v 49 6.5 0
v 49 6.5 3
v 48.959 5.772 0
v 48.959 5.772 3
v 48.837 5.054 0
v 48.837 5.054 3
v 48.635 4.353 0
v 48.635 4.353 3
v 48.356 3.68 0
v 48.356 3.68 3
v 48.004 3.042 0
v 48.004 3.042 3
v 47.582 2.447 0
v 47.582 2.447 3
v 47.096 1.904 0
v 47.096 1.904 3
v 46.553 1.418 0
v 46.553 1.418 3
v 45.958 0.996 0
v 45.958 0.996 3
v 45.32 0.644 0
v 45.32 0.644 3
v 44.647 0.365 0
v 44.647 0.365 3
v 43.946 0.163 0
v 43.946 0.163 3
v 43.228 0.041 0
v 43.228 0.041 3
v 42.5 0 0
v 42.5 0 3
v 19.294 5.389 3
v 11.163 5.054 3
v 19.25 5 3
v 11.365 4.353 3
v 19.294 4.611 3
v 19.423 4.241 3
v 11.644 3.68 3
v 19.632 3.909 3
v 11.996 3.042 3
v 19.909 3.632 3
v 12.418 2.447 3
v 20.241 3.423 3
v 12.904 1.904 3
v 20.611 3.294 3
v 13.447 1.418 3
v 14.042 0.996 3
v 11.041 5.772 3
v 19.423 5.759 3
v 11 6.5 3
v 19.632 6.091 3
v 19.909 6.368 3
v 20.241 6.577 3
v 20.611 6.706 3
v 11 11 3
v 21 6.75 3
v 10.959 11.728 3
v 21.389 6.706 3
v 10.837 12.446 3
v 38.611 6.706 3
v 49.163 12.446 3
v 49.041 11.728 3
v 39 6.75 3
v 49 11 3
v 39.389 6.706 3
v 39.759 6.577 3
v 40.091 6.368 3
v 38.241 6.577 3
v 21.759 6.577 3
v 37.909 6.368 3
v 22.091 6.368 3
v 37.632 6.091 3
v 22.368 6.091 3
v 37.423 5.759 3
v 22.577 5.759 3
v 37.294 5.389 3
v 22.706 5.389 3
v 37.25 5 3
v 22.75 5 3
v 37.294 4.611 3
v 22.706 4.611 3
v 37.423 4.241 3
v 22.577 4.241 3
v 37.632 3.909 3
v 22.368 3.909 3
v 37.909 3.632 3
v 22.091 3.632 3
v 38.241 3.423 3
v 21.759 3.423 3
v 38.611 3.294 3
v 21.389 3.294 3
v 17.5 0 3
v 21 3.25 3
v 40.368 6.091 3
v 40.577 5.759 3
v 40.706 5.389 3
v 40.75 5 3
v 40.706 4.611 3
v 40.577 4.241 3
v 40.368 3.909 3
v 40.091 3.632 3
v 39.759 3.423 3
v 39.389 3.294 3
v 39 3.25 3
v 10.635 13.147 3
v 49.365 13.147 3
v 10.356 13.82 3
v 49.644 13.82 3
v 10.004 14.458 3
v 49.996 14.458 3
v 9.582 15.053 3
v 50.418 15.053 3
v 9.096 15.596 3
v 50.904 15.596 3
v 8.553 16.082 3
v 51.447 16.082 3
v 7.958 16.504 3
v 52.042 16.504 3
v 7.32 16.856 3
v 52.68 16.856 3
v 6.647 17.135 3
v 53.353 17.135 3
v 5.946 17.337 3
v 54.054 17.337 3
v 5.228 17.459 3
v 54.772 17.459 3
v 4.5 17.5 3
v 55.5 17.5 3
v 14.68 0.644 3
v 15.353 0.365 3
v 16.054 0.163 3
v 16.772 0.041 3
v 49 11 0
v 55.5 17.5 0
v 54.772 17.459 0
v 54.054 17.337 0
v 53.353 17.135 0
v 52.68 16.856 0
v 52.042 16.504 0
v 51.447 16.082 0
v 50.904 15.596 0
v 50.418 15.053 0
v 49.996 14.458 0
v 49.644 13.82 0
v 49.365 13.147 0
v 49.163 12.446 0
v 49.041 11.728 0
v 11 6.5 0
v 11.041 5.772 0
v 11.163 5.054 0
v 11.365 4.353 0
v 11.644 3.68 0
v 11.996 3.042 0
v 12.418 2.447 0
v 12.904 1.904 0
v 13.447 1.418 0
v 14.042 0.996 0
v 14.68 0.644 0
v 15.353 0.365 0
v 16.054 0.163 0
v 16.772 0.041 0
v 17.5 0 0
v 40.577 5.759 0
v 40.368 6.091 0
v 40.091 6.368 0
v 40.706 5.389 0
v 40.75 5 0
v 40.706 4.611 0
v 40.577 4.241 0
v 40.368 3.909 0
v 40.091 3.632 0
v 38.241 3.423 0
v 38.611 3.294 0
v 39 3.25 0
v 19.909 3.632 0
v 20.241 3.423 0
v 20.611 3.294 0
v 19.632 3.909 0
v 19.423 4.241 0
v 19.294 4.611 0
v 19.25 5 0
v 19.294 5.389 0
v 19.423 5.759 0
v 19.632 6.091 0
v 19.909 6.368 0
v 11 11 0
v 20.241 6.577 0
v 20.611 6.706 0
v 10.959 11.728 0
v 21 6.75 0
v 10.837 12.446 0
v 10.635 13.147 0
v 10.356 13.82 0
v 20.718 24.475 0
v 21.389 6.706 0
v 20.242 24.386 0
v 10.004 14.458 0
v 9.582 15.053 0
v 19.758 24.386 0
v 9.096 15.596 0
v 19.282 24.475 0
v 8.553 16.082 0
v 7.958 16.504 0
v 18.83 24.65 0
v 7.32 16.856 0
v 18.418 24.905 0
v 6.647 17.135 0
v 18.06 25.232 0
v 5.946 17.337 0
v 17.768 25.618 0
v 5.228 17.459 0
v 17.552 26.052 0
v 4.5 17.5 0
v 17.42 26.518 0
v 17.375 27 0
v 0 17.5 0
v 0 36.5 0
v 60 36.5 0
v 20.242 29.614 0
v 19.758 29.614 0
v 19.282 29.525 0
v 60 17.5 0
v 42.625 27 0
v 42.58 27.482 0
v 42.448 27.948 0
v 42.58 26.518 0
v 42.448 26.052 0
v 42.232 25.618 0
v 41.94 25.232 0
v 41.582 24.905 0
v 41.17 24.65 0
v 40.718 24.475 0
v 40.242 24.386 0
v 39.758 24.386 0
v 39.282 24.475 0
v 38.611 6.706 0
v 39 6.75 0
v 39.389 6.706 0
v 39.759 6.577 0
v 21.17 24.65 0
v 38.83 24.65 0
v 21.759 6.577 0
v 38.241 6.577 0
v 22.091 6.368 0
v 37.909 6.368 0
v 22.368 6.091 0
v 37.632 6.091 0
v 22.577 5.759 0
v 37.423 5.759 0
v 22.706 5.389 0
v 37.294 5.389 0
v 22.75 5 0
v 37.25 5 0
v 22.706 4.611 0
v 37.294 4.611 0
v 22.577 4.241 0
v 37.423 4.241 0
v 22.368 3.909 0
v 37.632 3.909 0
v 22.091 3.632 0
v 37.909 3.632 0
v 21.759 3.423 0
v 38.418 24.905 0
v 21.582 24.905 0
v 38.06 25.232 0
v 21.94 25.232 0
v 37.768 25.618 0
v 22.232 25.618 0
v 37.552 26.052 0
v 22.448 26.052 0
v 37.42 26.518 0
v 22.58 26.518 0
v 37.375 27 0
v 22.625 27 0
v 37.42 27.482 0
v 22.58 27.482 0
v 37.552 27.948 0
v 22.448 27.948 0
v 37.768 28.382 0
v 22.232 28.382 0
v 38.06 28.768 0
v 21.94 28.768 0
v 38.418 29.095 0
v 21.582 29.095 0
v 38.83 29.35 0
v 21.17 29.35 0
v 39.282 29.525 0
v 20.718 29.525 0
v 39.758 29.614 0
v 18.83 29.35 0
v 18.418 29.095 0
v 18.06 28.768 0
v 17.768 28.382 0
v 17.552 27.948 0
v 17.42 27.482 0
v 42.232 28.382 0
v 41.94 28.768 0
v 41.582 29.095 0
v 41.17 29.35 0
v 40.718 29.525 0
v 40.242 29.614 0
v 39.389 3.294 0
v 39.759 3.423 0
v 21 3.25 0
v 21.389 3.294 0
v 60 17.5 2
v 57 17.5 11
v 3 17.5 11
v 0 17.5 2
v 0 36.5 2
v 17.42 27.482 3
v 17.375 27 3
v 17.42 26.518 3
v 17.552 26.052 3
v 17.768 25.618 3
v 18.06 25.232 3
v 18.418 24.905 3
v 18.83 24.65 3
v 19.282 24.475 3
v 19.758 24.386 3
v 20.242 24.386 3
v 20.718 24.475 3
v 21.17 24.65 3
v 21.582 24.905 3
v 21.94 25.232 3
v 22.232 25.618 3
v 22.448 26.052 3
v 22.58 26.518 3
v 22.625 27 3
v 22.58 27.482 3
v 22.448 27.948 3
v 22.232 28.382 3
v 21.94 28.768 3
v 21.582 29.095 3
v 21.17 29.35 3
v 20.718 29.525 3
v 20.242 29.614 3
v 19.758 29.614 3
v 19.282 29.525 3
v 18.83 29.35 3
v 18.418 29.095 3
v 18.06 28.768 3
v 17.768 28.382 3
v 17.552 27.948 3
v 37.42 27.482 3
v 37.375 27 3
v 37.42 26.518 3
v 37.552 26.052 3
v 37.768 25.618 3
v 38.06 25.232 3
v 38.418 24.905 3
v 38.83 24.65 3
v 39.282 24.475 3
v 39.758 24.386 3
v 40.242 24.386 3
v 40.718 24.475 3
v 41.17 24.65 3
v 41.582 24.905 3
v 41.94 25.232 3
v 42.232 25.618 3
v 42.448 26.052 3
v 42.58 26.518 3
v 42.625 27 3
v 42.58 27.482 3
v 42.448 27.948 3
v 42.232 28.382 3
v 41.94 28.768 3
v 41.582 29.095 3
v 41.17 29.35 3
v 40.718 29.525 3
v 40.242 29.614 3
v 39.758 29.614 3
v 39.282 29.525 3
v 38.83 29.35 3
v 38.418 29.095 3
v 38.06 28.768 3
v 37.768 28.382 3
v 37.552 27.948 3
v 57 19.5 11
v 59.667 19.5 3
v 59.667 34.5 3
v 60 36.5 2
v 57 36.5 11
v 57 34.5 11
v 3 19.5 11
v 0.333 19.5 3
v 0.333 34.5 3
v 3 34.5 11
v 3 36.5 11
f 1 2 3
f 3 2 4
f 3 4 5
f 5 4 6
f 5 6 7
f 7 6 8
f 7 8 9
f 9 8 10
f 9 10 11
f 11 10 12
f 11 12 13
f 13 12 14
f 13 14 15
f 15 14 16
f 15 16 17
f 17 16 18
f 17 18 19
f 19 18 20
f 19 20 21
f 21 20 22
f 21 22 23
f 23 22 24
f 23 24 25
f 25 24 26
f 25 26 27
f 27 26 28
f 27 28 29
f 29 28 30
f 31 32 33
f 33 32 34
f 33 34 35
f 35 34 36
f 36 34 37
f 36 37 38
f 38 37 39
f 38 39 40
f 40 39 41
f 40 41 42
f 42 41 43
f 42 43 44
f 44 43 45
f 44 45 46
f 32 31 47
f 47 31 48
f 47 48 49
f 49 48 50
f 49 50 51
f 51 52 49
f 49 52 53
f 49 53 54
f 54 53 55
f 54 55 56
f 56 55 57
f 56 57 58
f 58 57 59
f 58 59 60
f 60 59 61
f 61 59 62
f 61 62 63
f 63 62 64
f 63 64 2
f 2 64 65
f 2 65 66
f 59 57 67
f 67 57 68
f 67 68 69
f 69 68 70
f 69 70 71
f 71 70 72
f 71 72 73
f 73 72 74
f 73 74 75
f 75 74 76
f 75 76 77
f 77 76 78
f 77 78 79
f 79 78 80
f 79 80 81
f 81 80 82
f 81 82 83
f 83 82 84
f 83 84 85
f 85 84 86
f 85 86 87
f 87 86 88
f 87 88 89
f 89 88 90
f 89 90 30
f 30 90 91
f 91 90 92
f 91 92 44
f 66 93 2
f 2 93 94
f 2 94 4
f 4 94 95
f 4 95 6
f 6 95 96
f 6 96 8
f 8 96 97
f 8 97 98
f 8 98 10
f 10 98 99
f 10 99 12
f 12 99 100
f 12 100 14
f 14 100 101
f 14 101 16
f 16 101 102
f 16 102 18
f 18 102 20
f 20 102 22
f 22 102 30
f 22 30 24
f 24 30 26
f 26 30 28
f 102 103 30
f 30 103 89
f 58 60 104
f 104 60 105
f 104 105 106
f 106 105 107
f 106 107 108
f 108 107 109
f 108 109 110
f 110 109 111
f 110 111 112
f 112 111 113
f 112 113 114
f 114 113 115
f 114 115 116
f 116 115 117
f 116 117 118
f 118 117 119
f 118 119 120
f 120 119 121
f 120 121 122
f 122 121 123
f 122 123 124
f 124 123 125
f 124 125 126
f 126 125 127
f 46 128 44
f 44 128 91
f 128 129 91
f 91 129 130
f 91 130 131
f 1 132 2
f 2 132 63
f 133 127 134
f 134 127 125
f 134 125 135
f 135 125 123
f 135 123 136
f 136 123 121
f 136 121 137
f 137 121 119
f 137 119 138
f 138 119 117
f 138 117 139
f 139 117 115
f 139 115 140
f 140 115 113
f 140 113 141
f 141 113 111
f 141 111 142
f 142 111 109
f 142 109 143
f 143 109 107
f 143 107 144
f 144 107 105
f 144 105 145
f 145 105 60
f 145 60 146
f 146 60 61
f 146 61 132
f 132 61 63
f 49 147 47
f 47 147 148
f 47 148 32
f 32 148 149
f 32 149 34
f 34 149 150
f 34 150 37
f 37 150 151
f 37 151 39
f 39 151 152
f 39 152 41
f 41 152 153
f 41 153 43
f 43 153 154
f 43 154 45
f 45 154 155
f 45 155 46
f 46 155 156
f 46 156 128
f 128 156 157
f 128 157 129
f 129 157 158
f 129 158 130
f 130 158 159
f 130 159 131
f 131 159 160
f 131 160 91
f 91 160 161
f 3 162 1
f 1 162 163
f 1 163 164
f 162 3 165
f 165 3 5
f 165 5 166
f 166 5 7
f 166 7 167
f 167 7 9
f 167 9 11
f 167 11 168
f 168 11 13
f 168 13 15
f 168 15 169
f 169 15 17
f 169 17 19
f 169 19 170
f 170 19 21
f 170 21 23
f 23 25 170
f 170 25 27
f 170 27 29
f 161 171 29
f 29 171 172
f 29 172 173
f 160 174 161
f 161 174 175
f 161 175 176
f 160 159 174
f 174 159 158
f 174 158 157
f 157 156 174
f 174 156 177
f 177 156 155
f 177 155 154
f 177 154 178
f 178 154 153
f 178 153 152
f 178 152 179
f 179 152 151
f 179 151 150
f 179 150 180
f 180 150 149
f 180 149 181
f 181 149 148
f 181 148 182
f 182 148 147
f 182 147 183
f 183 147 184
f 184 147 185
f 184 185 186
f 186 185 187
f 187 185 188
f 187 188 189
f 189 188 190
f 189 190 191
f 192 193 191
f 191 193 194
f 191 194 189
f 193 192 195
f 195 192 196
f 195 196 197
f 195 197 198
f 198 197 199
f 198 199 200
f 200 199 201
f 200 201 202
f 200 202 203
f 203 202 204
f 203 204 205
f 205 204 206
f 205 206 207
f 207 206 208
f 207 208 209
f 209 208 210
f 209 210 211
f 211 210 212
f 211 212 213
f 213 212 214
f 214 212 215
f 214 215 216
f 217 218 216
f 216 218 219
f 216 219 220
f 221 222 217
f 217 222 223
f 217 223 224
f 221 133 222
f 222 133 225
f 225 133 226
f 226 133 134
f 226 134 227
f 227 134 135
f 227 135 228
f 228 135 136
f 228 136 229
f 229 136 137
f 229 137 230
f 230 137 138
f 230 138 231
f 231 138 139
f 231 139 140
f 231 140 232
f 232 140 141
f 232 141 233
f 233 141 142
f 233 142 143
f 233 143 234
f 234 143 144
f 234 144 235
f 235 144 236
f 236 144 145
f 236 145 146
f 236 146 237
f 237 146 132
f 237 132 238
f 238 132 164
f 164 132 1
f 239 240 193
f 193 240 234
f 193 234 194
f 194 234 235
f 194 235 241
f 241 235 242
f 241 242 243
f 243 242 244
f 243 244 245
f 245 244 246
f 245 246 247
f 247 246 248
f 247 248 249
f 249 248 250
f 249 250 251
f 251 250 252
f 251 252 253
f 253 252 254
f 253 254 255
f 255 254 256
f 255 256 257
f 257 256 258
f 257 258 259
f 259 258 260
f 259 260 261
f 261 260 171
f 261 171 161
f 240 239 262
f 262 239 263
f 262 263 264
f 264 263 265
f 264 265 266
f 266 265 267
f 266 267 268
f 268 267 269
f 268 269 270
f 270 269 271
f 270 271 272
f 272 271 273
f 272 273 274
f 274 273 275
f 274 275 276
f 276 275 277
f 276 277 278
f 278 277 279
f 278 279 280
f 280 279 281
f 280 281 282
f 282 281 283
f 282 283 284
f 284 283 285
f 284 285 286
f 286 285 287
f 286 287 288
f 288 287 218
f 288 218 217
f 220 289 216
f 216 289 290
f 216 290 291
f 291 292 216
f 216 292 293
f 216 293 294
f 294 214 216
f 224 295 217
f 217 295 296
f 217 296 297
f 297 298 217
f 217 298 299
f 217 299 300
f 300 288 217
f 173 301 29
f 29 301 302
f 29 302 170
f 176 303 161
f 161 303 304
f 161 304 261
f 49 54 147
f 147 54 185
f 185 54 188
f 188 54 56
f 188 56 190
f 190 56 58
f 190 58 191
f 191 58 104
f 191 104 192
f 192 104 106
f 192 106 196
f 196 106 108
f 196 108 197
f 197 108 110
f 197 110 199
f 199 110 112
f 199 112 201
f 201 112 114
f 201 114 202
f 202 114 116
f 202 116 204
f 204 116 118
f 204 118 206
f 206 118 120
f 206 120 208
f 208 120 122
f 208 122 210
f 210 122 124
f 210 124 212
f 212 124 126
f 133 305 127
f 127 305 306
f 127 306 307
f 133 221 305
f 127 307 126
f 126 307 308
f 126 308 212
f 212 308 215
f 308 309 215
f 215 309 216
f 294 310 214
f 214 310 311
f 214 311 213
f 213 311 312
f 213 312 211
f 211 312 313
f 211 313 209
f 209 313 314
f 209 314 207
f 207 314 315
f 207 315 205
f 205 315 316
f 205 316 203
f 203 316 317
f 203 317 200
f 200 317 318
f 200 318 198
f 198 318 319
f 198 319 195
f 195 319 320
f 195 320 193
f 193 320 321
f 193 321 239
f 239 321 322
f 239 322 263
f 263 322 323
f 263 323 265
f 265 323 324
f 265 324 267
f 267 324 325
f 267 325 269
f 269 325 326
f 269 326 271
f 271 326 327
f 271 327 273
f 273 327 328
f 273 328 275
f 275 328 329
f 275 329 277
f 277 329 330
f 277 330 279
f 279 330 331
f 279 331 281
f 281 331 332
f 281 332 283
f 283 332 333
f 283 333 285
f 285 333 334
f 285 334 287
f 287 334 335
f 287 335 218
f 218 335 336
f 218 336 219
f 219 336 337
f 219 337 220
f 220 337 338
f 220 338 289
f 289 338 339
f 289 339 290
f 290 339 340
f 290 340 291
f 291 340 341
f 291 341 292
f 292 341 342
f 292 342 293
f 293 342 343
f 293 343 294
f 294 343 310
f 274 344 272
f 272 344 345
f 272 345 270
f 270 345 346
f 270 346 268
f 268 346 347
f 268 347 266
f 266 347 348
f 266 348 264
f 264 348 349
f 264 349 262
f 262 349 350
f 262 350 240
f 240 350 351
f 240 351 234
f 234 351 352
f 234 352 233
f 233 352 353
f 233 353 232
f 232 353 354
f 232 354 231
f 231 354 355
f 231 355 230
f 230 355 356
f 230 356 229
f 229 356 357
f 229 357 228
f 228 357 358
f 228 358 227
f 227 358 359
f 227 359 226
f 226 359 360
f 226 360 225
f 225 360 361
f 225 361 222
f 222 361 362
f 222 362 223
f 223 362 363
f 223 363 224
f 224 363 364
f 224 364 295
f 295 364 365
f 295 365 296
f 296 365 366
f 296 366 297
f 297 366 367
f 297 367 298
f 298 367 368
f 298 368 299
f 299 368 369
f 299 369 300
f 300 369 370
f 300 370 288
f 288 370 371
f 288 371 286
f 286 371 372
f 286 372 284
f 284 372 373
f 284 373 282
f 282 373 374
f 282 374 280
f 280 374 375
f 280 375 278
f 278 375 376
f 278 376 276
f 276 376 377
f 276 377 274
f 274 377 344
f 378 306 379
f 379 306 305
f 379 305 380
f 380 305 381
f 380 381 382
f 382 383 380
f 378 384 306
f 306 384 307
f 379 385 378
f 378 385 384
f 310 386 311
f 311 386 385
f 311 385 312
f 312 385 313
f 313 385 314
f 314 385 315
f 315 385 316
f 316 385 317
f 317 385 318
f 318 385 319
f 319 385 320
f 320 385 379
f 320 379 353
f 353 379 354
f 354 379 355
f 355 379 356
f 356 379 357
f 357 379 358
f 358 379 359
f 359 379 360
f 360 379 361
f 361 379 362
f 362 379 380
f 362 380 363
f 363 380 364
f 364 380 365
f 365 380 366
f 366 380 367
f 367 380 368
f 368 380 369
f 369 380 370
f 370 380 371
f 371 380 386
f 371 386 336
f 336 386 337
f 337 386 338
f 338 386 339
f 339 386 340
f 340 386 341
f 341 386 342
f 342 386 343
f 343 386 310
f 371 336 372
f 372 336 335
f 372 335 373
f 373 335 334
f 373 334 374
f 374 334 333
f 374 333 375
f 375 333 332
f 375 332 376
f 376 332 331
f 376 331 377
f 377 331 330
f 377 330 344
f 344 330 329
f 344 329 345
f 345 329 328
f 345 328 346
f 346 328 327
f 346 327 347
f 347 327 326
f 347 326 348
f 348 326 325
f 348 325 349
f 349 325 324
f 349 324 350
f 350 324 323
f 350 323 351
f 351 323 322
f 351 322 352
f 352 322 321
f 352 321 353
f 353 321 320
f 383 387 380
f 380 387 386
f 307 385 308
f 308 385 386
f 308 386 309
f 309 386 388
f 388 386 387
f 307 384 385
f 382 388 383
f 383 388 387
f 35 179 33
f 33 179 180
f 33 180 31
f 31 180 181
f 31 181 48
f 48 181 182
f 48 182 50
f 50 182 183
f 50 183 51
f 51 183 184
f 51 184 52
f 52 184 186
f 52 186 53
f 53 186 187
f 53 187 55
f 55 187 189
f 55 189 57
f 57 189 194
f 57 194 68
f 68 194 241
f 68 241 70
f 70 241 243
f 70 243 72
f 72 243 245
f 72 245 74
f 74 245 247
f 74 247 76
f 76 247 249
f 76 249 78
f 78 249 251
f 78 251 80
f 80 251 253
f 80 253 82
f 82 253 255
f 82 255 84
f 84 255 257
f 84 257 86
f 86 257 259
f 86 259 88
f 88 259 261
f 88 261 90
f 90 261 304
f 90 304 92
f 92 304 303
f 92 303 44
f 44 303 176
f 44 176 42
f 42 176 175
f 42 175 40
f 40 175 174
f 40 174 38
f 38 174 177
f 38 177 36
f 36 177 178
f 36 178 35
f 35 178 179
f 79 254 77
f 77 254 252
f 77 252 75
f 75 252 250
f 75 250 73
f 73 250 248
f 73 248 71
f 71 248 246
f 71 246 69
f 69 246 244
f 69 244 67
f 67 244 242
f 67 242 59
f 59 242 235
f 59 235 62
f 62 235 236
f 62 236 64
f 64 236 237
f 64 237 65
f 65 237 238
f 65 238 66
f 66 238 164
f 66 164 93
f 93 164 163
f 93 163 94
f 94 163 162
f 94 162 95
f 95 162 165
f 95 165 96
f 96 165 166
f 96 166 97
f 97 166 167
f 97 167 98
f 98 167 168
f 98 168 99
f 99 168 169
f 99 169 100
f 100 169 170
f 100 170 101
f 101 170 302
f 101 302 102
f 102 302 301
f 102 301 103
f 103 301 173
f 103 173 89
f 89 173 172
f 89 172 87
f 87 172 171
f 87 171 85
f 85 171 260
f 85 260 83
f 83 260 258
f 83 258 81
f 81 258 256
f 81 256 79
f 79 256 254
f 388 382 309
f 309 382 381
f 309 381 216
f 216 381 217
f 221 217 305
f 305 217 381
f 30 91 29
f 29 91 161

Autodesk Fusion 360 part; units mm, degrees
sketch "Esquisse1" plane through (0, 0, 0) normal (0, 0, 1) x (1, 0, 0)
  line L0 (0, 0) -> (60, 0)
  line L1 (60, 0) -> (60, 36.5)
  line L2 (60, 36.5) -> (0, 36.5)
  line L3 (0, 36.5) -> (0, 0)
  line L4 (0, 5) -> (60, 5) construction
  line L5 (0, 33.5) -> (60, 33.5) construction
  circle A0 centre (21, 5) radius 1.75
  circle A1 centre (39, 5) radius 1.75
  dimension "d1" = 28.5
  dimension "d2" = 60
  dimension "d3" = 18
  dimension "d4" = 21
  dimension "d5" = 3.5
  dimension "d6" = 5
  dimension "d7" = 3
extrude "Extrusion1" add sketch "Esquisse1" along normal blind 3
sketch "Esquisse2" plane through (0, 0, 3) normal (0, 0, 1) x (1, 0, 0)
  circle A0 centre (39, 5) radius 1.75
  circle A1 centre (21, 5) radius 1.75
  line L0 (0, 36.5) -> (0, 0)
  line L1 (0, 0) -> (60, 0)
  line L2 (60, 0) -> (60, 36.5)
  line L3 (60, 36.5) -> (0, 36.5)
  line L4 (0, 36.5) -> (60, 36.5)
  line L5 (60, 36.5) -> (60, 34.5)
  line L6 (60, 34.5) -> (0, 34.5)
  line L7 (0, 34.5) -> (0, 36.5)
  line L8 (0, 17.5) -> (60, 17.5)
  line L9 (60, 17.5) -> (60, 19.5)
  line L10 (60, 19.5) -> (0, 19.5)
  line L11 (0, 19.5) -> (0, 17.5)
  line L12 (60, 36.5) -> (0, 36.5)
  dimension "d10" = 15
  dimension "d11" = 2
  dimension "d12" = 2
extrude "Extrusion2" add sketch "Esquisse2" along normal blind 8 contours L0 L2 L3 L4 L5 L6 L7 L12 | L0 L2 L8 L9 L10 L11
sketch "Esquisse3" plane through (0, 0, 3) normal (0, 0, 1) x (1, 0, 0)
  line L0 (0, 19.5) -> (60, 19.5)
  line L1 (60, 19.5) -> (60, 34.5)
  line L2 (60, 34.5) -> (0, 34.5)
  line L3 (0, 34.5) -> (0, 19.5)
  line L4 (0, 27) -> (60, 27) construction
  circle A0 centre (20, 27) radius 2.625
  circle A1 centre (40, 27) radius 2.625
  line L5 (0, 36.5) -> (0, 0)
  dimension "d17" = 15
  dimension "d18" = 60
  dimension "d19" = 20
  dimension "d20" = 20
  dimension "d21" = 5.25
chamfer "Chanfrein2" distance 3 distance2 9 4 edges at (0, 18.5, 11) (0, 35.5, 11) (60, 35.5, 11) (60, 18.5, 11) measured on face at (20, 18.8333, 11) measured on face at (20, 35.1667, 11) measured on face at (20, 35.1667, 11) measured on face at (20, 18.8333, 11)
extrude "Extrusion3" cut sketch "Esquisse3" against normal blind 8 contours A0 | A1
sketch "Esquisse5" plane through (0, 0, 3) normal (0, 0, 1) x (1, 0, 0)
  line L0 (59.6667, 0) -> (59.6667, 17.5)
  line L1 (59.6667, 17.5) -> (0.3333, 17.5)
  line L2 (0.3333, 17.5) -> (0.3333, 0)
  line L3 (0.3333, 0) -> (59.6667, 0)
  circle A0 centre (39, 5) radius 1.75
  circle A1 centre (21, 5) radius 1.75
  line L4 (11, 0) -> (-11.5098, 0)
  line L5 (-11.5098, 0) -> (-11.5098, 17.5)
  line L6 (-11.5098, 17.5) -> (11, 17.5)
  line L7 (11, 17.5) -> (11, 0)
  line L8 (49, 0) -> (81.8509, 0)
  line L9 (81.8509, 0) -> (81.8509, 17.5)
  line L10 (81.8509, 17.5) -> (49, 17.5)
  line L11 (49, 17.5) -> (49, 0)
  point P0 (21, 5)
  point P1 (39, 5)
  dimension "d31" = 10
  dimension "d32" = 10
extrude "Extrusion5" cut sketch "Esquisse5" against normal blind 20 contours L0 L1 L3 L8 L10 L11 | L0 L8 L9 L10 | L1 L2 L3 L4 L6 L7 | L2 L4 L5 L6
fillet "Congé2" radius 6.5 4 edges at (11, 17.5, 1.5) (11, 0, 1.5) (49, 17.5, 1.5) (49, 0, 1.5)
equation "d4 = ( d2 - d3 ) / 2"
equation "d19 = d18 / 3"
equation "d20 = d19"
